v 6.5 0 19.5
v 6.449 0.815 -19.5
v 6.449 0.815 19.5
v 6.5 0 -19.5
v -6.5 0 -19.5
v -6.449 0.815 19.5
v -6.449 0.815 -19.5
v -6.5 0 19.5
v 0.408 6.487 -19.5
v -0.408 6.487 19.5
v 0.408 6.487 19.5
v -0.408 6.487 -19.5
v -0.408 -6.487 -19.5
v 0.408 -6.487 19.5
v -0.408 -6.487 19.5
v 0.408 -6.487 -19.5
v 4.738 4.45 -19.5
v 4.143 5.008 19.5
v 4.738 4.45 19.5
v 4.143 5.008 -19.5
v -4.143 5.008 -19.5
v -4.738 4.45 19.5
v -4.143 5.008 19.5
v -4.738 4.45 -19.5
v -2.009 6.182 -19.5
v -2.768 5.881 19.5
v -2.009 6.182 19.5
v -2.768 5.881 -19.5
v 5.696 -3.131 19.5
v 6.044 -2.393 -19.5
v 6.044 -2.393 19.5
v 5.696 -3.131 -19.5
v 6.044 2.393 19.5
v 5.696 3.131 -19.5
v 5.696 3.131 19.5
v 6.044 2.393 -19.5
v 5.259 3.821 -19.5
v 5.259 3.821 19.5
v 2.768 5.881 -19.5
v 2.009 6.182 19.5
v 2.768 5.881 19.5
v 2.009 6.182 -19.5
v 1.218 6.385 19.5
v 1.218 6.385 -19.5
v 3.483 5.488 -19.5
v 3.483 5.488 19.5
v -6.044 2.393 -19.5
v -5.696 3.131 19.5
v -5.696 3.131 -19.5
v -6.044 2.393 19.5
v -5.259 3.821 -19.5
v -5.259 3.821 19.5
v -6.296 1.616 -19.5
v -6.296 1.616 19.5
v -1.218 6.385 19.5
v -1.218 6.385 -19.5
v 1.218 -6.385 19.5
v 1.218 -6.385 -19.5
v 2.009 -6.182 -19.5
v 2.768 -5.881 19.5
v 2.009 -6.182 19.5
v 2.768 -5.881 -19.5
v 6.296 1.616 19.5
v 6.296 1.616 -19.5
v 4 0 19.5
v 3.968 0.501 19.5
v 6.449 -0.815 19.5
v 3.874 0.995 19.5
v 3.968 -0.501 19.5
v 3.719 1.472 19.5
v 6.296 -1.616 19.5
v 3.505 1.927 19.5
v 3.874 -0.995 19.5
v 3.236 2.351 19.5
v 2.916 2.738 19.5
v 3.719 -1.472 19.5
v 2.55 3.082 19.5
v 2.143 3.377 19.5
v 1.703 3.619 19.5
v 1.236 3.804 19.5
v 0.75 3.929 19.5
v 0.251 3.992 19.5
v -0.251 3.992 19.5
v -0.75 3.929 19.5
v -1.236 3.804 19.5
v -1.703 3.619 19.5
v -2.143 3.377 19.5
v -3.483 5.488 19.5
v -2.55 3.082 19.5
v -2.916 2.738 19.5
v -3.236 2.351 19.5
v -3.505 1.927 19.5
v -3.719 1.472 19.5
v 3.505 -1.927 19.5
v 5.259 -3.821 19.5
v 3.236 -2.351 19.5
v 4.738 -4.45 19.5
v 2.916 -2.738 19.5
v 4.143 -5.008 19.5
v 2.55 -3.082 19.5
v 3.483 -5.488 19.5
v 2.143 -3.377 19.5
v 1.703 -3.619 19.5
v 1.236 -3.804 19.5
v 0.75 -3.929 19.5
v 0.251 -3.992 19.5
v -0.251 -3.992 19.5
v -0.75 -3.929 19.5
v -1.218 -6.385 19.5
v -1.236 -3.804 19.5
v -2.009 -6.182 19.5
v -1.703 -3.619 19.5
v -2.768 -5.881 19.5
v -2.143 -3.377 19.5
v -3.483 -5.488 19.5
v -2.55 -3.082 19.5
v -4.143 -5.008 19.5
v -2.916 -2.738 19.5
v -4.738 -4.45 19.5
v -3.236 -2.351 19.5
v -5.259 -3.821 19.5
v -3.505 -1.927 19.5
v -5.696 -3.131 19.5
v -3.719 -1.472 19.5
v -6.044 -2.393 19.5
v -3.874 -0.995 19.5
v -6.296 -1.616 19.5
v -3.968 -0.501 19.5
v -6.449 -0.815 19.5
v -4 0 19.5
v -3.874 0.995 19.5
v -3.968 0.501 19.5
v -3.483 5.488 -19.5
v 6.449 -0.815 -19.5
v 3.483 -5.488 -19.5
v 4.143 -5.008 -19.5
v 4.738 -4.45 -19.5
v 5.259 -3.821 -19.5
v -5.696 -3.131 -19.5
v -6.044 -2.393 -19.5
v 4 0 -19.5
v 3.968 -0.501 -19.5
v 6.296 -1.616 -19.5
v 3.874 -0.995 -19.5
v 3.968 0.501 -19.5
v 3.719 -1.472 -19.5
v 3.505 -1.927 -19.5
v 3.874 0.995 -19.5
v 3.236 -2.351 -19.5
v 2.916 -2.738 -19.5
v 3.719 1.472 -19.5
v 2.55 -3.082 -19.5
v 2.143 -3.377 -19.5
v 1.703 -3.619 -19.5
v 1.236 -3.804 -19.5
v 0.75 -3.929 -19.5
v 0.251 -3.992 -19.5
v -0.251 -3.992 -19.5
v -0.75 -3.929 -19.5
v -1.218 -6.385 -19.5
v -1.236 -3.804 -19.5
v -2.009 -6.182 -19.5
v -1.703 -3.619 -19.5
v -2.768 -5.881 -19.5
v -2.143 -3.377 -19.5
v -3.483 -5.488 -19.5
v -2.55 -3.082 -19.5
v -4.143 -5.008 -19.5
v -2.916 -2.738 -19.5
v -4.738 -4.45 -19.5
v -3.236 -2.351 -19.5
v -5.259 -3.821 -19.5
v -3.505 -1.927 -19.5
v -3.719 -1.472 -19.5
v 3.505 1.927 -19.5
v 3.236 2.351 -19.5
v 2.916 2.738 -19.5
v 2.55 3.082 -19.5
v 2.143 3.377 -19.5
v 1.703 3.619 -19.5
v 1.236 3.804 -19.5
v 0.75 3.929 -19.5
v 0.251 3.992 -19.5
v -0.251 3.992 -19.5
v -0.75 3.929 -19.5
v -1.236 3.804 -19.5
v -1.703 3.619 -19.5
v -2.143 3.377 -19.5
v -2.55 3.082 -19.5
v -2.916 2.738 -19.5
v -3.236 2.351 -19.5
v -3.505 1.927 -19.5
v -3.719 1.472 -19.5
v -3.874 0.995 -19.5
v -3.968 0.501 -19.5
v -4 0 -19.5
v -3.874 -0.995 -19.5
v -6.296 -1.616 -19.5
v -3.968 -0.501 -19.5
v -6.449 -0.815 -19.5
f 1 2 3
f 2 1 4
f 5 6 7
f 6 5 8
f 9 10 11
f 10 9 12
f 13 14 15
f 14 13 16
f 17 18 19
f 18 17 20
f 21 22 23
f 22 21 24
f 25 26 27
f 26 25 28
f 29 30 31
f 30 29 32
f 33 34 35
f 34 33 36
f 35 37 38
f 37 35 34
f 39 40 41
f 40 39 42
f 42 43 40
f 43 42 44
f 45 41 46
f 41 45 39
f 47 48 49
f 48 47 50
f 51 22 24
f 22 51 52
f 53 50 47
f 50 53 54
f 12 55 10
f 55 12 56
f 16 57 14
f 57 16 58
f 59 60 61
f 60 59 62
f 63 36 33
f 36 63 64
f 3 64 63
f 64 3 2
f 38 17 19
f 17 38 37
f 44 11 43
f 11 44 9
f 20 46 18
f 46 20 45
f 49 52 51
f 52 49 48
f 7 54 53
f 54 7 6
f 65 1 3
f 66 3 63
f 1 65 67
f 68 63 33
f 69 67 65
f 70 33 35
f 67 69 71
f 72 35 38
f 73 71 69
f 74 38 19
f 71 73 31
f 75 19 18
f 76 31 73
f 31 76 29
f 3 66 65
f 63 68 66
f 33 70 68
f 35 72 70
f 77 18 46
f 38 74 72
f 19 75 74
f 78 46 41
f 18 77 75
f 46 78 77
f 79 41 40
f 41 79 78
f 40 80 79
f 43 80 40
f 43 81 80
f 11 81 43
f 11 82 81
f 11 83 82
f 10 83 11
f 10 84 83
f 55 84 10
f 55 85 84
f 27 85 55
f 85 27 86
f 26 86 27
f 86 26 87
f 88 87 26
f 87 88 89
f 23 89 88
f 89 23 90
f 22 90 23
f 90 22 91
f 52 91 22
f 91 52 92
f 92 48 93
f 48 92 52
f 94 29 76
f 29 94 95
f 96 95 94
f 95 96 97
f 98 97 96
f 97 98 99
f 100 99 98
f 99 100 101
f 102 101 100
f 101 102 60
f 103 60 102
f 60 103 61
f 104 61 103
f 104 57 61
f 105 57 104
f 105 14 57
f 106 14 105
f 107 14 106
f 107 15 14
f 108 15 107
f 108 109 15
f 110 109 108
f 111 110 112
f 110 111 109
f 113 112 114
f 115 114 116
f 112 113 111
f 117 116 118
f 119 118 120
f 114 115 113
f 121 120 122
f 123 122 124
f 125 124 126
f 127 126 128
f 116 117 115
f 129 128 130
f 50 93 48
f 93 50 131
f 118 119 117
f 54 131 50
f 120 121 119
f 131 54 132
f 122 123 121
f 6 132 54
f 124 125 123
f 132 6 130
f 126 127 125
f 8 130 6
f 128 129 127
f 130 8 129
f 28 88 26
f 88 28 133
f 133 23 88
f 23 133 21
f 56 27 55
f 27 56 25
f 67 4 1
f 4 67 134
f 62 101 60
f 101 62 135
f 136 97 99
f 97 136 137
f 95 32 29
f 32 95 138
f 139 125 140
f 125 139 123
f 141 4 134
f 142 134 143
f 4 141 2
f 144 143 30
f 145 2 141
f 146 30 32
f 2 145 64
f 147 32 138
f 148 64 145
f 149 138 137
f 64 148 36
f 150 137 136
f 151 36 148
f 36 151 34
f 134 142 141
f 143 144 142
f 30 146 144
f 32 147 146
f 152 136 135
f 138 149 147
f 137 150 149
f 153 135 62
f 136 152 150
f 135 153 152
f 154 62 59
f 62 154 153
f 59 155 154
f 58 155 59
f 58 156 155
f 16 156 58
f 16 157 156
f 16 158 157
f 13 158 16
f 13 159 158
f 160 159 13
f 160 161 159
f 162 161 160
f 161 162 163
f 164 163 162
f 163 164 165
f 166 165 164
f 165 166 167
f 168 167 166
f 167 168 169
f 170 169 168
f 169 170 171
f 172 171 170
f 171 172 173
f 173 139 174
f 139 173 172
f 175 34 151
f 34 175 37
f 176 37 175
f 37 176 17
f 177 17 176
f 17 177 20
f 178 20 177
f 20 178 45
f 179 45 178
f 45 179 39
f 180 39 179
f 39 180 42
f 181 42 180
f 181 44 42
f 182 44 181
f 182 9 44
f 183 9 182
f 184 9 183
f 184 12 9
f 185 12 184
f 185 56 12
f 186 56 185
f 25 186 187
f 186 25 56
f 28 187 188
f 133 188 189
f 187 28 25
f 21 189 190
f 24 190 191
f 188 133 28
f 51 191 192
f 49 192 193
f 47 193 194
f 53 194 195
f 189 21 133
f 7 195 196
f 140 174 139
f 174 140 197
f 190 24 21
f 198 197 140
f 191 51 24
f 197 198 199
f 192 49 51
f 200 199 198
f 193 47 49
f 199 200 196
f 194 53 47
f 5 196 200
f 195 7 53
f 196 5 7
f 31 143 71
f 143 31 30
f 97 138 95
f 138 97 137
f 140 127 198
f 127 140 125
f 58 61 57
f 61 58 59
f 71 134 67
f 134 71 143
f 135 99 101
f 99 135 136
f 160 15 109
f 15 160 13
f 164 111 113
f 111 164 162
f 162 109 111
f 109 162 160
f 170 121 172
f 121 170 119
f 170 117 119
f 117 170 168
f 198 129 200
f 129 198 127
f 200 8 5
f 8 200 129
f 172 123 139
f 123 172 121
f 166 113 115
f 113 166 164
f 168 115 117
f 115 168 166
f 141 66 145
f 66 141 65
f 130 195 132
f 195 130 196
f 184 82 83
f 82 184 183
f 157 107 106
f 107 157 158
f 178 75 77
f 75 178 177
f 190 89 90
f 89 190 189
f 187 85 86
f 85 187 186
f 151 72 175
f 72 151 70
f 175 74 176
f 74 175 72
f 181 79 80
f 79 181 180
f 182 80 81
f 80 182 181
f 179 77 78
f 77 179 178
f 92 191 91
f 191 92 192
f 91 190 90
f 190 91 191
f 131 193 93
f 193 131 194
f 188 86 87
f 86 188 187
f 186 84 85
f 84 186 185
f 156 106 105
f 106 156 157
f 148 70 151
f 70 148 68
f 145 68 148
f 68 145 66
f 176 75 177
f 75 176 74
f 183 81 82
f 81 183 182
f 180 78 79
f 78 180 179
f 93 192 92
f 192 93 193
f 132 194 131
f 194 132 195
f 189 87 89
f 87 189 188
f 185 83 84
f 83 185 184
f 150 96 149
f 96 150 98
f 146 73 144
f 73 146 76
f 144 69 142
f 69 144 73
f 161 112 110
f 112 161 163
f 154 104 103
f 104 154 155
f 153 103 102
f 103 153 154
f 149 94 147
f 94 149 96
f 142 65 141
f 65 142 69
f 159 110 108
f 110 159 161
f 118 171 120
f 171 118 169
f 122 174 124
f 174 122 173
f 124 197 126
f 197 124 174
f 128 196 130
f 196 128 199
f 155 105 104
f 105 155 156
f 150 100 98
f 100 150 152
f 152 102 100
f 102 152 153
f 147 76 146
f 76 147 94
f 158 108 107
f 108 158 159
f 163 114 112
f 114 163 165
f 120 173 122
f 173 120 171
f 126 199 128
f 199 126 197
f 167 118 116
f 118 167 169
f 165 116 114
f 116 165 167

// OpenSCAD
$fn = 50;


difference() {
	union() {
		translate(v = [0, 0, -19.5000000000]) {
			cylinder(h = 39, r = 6.5000000000);
		}
	}
	union() {
		translate(v = [0, 0, -100.0000000000]) {
			cylinder(h = 200, r = 4);
		}
	}
}
